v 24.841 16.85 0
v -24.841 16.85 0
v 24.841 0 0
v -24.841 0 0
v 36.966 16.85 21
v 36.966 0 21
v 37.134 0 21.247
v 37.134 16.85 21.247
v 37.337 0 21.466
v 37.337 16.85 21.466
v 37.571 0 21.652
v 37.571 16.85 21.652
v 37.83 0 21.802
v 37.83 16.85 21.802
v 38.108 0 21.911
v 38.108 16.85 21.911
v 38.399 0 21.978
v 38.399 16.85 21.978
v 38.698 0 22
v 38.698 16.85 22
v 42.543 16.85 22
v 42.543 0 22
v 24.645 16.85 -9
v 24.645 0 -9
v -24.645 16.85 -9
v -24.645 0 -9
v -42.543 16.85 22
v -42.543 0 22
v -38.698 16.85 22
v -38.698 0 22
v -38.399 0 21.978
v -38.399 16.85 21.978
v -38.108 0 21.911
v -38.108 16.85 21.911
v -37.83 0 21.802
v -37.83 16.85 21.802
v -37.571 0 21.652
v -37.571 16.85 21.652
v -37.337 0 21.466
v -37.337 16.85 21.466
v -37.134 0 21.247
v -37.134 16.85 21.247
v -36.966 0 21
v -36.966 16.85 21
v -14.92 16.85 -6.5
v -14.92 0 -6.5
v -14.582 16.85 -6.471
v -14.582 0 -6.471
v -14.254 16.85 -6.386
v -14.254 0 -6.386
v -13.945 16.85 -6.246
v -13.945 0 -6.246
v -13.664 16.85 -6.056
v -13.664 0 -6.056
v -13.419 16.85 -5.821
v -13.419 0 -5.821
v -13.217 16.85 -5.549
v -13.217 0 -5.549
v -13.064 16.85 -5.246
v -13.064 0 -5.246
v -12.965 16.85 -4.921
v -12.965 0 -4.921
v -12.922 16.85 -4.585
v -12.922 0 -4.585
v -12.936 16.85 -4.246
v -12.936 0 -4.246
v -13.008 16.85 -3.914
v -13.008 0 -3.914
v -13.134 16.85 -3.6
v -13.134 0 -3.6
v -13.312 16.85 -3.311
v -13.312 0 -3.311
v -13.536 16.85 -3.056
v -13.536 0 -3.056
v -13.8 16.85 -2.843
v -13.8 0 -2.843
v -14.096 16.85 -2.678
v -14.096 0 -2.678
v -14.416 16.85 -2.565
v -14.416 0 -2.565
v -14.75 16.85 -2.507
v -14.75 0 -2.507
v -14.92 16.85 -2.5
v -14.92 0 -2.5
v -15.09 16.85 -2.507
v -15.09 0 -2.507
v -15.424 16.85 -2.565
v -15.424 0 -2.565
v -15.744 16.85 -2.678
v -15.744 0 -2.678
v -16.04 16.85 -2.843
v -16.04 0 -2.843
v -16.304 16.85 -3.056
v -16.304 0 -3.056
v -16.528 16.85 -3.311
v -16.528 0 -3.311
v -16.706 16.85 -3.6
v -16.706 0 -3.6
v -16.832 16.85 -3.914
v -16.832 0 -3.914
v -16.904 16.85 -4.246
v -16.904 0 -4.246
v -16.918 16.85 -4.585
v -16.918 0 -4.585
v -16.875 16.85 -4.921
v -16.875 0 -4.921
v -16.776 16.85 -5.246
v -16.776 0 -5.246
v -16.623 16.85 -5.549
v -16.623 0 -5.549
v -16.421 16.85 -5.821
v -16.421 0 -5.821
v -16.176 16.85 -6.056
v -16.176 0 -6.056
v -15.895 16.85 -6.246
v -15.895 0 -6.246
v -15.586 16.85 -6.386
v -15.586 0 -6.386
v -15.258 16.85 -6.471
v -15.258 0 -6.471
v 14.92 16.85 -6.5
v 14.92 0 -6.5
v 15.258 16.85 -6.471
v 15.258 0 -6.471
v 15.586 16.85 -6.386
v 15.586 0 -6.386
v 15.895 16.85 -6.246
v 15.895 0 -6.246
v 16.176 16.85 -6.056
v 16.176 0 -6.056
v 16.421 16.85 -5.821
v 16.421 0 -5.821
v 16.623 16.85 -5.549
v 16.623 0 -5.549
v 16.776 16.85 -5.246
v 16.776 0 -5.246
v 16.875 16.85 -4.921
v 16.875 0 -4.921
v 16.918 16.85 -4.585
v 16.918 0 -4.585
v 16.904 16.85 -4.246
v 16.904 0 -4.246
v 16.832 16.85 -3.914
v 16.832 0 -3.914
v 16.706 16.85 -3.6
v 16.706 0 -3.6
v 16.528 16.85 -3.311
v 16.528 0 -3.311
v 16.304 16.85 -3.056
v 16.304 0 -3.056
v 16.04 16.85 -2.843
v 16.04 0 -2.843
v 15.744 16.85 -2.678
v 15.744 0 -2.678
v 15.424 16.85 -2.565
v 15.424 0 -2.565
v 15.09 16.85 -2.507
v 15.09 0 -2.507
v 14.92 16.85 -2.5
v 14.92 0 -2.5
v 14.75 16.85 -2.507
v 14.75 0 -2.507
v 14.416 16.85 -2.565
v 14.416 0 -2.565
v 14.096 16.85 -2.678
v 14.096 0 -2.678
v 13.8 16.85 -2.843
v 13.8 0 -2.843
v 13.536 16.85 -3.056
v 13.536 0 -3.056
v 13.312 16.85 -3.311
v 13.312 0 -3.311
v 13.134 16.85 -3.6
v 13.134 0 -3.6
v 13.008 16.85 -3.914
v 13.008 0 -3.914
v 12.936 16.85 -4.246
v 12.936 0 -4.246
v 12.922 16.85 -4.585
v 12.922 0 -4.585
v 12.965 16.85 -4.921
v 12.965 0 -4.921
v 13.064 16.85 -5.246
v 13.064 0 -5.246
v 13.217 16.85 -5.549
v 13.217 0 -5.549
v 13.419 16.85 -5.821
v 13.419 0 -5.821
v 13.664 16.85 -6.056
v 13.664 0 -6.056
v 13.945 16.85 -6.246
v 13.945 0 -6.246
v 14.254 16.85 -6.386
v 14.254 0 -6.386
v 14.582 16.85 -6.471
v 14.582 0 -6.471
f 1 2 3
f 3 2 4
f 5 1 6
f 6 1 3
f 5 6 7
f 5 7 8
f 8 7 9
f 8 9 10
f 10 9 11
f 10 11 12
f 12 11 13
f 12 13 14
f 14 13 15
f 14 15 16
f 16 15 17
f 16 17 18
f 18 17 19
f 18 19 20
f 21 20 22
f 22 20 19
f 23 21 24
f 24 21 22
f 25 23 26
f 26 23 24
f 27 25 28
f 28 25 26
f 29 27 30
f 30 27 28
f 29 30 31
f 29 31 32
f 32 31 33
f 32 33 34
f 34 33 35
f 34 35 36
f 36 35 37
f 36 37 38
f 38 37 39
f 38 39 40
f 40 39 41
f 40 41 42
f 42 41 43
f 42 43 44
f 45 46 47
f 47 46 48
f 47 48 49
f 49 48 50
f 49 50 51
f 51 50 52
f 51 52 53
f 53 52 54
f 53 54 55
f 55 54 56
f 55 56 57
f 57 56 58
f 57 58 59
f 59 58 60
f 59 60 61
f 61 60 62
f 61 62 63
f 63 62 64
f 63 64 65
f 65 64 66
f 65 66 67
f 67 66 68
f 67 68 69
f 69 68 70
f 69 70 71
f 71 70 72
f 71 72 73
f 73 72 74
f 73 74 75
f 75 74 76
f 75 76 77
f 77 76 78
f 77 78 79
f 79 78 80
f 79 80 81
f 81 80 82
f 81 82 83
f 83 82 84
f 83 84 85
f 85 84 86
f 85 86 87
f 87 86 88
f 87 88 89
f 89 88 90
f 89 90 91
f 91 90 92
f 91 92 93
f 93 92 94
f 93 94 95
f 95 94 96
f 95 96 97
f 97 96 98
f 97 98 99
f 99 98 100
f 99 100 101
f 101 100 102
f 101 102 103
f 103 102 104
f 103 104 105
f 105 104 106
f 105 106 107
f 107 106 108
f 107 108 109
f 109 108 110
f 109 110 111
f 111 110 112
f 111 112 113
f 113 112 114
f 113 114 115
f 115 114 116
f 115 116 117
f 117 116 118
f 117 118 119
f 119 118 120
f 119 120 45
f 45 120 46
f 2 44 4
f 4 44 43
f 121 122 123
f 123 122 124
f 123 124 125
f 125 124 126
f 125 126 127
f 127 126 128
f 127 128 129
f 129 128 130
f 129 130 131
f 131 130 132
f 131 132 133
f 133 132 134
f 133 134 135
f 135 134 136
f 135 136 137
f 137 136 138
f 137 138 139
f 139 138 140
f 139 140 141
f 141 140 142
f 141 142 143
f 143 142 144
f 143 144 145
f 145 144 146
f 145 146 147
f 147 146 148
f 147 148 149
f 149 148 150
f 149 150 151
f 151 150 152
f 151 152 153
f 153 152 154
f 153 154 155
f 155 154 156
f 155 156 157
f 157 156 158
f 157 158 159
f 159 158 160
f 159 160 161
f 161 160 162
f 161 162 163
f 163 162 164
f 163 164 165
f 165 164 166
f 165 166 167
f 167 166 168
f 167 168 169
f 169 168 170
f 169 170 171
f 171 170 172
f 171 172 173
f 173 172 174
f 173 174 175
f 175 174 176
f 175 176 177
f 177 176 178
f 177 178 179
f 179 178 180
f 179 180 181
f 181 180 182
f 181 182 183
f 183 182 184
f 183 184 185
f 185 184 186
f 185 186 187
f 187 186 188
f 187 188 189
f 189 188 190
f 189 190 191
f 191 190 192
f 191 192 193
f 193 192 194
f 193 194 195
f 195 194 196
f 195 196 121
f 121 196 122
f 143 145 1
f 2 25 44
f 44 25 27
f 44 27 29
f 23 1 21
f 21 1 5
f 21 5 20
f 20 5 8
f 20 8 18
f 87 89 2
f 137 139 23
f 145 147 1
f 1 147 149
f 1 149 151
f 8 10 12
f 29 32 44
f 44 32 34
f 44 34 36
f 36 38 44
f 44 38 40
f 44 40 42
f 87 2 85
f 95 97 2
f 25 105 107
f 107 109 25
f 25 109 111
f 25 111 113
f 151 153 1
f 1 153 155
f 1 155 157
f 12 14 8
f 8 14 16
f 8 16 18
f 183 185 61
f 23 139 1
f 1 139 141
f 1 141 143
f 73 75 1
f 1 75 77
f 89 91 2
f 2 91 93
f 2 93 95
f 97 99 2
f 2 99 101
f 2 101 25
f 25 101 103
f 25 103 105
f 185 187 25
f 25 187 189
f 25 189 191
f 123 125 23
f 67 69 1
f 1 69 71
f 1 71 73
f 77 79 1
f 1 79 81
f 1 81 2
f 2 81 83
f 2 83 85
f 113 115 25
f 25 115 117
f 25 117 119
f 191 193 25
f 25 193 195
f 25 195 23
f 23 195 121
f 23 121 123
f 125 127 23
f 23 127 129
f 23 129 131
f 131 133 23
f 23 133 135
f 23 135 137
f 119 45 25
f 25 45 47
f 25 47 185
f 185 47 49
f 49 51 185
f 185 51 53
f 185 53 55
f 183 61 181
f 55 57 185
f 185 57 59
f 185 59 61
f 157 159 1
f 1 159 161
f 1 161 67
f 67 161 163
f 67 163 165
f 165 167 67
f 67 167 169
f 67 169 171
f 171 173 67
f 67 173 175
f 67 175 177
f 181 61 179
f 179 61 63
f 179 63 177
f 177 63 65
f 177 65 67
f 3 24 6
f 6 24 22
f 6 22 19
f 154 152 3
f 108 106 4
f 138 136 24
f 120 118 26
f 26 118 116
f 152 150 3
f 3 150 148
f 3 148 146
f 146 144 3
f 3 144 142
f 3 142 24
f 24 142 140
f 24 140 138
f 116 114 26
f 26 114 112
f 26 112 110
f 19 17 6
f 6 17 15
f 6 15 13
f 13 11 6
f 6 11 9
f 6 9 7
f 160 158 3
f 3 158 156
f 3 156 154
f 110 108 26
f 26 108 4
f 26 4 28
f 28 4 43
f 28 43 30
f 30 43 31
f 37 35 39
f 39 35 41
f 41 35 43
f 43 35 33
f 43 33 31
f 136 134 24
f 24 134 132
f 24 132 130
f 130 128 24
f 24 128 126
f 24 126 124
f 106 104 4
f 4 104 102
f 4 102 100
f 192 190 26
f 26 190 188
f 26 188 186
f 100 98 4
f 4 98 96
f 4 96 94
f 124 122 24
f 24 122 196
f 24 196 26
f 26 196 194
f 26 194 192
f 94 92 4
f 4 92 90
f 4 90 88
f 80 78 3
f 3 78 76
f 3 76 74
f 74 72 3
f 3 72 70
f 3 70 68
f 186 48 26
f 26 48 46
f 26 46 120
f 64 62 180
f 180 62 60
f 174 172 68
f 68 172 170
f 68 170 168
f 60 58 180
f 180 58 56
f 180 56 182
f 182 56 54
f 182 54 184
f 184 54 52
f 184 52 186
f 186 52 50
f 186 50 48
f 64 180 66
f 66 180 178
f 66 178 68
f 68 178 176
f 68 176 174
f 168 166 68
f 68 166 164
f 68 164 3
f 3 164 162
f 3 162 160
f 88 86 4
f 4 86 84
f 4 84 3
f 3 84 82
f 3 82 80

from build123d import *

# Parameters (mm, degrees)
SKETCH1_R           = 2
BOSS_EXTRUDE1_DEPTH = 16.85


with BuildPart() as part:
    # Sketch1 → Boss-Extrude1 (new body)
    # profile 1 of 4: a face of its own
    with BuildSketch(Plane(origin=(0, 0, 0), x_dir=(1, 0, 0), z_dir=(0, 1, 0))):
        Polygon((-24.645, 9), (-29.841152423, 0), (-24.841152423, 0), (0, 0), (0, 9), align=None)
        with Locations(Location((-14.92, 4.5, 0), (0, 0, 270))):
            Circle(SKETCH1_R, mode=Mode.SUBTRACT)
    # profile 2 of 4: a face of its own
    with BuildSketch(Plane(origin=(0, 0, 0), x_dir=(1, 0, 0), z_dir=(0, 1, 0))):
        Polygon((0, 9), (0, 0), (24.841152423, 0), (29.841152423, 0), (24.645, 9), align=None)
        with Locations(Location((14.92, 4.5, 0), (0, 0, 270))):
            Circle(SKETCH1_R, mode=Mode.SUBTRACT)
    # profile 3 of 4: a face of its own
    with BuildSketch(Plane(origin=(0, 0, 0), x_dir=(1, 0, 0), z_dir=(0, 1, 0))):
        with BuildLine():
            Line((-24.841152423, 0), (-29.841152423, 0))
            Line((-29.841152423, 0), (-42.542858345, -22))
            Line((-42.542858345, -22), (-38.697558883, -22))
            ThreePointArc((-38.697558883, -22), (-37.697558883, -21.732050808), (-36.965508076, -21))
            Line((-36.965508076, -21), (-24.841152423, 0))
        make_face()
    # profile 4 of 4: a face of its own
    with BuildSketch(Plane(origin=(0, 0, 0), x_dir=(1, 0, 0), z_dir=(0, 1, 0))):
        with BuildLine():
            Line((29.841152423, 0), (24.841152423, 0))
            Line((24.841152423, 0), (36.965508076, -21))
            ThreePointArc((36.965508076, -21), (37.697558883, -21.732050808), (38.697558883, -22))
            Line((38.697558883, -22), (42.542858345, -22))
            Line((42.542858345, -22), (29.841152423, 0))
        make_face()
    extrude(amount=BOSS_EXTRUDE1_DEPTH)


solid = part.part
